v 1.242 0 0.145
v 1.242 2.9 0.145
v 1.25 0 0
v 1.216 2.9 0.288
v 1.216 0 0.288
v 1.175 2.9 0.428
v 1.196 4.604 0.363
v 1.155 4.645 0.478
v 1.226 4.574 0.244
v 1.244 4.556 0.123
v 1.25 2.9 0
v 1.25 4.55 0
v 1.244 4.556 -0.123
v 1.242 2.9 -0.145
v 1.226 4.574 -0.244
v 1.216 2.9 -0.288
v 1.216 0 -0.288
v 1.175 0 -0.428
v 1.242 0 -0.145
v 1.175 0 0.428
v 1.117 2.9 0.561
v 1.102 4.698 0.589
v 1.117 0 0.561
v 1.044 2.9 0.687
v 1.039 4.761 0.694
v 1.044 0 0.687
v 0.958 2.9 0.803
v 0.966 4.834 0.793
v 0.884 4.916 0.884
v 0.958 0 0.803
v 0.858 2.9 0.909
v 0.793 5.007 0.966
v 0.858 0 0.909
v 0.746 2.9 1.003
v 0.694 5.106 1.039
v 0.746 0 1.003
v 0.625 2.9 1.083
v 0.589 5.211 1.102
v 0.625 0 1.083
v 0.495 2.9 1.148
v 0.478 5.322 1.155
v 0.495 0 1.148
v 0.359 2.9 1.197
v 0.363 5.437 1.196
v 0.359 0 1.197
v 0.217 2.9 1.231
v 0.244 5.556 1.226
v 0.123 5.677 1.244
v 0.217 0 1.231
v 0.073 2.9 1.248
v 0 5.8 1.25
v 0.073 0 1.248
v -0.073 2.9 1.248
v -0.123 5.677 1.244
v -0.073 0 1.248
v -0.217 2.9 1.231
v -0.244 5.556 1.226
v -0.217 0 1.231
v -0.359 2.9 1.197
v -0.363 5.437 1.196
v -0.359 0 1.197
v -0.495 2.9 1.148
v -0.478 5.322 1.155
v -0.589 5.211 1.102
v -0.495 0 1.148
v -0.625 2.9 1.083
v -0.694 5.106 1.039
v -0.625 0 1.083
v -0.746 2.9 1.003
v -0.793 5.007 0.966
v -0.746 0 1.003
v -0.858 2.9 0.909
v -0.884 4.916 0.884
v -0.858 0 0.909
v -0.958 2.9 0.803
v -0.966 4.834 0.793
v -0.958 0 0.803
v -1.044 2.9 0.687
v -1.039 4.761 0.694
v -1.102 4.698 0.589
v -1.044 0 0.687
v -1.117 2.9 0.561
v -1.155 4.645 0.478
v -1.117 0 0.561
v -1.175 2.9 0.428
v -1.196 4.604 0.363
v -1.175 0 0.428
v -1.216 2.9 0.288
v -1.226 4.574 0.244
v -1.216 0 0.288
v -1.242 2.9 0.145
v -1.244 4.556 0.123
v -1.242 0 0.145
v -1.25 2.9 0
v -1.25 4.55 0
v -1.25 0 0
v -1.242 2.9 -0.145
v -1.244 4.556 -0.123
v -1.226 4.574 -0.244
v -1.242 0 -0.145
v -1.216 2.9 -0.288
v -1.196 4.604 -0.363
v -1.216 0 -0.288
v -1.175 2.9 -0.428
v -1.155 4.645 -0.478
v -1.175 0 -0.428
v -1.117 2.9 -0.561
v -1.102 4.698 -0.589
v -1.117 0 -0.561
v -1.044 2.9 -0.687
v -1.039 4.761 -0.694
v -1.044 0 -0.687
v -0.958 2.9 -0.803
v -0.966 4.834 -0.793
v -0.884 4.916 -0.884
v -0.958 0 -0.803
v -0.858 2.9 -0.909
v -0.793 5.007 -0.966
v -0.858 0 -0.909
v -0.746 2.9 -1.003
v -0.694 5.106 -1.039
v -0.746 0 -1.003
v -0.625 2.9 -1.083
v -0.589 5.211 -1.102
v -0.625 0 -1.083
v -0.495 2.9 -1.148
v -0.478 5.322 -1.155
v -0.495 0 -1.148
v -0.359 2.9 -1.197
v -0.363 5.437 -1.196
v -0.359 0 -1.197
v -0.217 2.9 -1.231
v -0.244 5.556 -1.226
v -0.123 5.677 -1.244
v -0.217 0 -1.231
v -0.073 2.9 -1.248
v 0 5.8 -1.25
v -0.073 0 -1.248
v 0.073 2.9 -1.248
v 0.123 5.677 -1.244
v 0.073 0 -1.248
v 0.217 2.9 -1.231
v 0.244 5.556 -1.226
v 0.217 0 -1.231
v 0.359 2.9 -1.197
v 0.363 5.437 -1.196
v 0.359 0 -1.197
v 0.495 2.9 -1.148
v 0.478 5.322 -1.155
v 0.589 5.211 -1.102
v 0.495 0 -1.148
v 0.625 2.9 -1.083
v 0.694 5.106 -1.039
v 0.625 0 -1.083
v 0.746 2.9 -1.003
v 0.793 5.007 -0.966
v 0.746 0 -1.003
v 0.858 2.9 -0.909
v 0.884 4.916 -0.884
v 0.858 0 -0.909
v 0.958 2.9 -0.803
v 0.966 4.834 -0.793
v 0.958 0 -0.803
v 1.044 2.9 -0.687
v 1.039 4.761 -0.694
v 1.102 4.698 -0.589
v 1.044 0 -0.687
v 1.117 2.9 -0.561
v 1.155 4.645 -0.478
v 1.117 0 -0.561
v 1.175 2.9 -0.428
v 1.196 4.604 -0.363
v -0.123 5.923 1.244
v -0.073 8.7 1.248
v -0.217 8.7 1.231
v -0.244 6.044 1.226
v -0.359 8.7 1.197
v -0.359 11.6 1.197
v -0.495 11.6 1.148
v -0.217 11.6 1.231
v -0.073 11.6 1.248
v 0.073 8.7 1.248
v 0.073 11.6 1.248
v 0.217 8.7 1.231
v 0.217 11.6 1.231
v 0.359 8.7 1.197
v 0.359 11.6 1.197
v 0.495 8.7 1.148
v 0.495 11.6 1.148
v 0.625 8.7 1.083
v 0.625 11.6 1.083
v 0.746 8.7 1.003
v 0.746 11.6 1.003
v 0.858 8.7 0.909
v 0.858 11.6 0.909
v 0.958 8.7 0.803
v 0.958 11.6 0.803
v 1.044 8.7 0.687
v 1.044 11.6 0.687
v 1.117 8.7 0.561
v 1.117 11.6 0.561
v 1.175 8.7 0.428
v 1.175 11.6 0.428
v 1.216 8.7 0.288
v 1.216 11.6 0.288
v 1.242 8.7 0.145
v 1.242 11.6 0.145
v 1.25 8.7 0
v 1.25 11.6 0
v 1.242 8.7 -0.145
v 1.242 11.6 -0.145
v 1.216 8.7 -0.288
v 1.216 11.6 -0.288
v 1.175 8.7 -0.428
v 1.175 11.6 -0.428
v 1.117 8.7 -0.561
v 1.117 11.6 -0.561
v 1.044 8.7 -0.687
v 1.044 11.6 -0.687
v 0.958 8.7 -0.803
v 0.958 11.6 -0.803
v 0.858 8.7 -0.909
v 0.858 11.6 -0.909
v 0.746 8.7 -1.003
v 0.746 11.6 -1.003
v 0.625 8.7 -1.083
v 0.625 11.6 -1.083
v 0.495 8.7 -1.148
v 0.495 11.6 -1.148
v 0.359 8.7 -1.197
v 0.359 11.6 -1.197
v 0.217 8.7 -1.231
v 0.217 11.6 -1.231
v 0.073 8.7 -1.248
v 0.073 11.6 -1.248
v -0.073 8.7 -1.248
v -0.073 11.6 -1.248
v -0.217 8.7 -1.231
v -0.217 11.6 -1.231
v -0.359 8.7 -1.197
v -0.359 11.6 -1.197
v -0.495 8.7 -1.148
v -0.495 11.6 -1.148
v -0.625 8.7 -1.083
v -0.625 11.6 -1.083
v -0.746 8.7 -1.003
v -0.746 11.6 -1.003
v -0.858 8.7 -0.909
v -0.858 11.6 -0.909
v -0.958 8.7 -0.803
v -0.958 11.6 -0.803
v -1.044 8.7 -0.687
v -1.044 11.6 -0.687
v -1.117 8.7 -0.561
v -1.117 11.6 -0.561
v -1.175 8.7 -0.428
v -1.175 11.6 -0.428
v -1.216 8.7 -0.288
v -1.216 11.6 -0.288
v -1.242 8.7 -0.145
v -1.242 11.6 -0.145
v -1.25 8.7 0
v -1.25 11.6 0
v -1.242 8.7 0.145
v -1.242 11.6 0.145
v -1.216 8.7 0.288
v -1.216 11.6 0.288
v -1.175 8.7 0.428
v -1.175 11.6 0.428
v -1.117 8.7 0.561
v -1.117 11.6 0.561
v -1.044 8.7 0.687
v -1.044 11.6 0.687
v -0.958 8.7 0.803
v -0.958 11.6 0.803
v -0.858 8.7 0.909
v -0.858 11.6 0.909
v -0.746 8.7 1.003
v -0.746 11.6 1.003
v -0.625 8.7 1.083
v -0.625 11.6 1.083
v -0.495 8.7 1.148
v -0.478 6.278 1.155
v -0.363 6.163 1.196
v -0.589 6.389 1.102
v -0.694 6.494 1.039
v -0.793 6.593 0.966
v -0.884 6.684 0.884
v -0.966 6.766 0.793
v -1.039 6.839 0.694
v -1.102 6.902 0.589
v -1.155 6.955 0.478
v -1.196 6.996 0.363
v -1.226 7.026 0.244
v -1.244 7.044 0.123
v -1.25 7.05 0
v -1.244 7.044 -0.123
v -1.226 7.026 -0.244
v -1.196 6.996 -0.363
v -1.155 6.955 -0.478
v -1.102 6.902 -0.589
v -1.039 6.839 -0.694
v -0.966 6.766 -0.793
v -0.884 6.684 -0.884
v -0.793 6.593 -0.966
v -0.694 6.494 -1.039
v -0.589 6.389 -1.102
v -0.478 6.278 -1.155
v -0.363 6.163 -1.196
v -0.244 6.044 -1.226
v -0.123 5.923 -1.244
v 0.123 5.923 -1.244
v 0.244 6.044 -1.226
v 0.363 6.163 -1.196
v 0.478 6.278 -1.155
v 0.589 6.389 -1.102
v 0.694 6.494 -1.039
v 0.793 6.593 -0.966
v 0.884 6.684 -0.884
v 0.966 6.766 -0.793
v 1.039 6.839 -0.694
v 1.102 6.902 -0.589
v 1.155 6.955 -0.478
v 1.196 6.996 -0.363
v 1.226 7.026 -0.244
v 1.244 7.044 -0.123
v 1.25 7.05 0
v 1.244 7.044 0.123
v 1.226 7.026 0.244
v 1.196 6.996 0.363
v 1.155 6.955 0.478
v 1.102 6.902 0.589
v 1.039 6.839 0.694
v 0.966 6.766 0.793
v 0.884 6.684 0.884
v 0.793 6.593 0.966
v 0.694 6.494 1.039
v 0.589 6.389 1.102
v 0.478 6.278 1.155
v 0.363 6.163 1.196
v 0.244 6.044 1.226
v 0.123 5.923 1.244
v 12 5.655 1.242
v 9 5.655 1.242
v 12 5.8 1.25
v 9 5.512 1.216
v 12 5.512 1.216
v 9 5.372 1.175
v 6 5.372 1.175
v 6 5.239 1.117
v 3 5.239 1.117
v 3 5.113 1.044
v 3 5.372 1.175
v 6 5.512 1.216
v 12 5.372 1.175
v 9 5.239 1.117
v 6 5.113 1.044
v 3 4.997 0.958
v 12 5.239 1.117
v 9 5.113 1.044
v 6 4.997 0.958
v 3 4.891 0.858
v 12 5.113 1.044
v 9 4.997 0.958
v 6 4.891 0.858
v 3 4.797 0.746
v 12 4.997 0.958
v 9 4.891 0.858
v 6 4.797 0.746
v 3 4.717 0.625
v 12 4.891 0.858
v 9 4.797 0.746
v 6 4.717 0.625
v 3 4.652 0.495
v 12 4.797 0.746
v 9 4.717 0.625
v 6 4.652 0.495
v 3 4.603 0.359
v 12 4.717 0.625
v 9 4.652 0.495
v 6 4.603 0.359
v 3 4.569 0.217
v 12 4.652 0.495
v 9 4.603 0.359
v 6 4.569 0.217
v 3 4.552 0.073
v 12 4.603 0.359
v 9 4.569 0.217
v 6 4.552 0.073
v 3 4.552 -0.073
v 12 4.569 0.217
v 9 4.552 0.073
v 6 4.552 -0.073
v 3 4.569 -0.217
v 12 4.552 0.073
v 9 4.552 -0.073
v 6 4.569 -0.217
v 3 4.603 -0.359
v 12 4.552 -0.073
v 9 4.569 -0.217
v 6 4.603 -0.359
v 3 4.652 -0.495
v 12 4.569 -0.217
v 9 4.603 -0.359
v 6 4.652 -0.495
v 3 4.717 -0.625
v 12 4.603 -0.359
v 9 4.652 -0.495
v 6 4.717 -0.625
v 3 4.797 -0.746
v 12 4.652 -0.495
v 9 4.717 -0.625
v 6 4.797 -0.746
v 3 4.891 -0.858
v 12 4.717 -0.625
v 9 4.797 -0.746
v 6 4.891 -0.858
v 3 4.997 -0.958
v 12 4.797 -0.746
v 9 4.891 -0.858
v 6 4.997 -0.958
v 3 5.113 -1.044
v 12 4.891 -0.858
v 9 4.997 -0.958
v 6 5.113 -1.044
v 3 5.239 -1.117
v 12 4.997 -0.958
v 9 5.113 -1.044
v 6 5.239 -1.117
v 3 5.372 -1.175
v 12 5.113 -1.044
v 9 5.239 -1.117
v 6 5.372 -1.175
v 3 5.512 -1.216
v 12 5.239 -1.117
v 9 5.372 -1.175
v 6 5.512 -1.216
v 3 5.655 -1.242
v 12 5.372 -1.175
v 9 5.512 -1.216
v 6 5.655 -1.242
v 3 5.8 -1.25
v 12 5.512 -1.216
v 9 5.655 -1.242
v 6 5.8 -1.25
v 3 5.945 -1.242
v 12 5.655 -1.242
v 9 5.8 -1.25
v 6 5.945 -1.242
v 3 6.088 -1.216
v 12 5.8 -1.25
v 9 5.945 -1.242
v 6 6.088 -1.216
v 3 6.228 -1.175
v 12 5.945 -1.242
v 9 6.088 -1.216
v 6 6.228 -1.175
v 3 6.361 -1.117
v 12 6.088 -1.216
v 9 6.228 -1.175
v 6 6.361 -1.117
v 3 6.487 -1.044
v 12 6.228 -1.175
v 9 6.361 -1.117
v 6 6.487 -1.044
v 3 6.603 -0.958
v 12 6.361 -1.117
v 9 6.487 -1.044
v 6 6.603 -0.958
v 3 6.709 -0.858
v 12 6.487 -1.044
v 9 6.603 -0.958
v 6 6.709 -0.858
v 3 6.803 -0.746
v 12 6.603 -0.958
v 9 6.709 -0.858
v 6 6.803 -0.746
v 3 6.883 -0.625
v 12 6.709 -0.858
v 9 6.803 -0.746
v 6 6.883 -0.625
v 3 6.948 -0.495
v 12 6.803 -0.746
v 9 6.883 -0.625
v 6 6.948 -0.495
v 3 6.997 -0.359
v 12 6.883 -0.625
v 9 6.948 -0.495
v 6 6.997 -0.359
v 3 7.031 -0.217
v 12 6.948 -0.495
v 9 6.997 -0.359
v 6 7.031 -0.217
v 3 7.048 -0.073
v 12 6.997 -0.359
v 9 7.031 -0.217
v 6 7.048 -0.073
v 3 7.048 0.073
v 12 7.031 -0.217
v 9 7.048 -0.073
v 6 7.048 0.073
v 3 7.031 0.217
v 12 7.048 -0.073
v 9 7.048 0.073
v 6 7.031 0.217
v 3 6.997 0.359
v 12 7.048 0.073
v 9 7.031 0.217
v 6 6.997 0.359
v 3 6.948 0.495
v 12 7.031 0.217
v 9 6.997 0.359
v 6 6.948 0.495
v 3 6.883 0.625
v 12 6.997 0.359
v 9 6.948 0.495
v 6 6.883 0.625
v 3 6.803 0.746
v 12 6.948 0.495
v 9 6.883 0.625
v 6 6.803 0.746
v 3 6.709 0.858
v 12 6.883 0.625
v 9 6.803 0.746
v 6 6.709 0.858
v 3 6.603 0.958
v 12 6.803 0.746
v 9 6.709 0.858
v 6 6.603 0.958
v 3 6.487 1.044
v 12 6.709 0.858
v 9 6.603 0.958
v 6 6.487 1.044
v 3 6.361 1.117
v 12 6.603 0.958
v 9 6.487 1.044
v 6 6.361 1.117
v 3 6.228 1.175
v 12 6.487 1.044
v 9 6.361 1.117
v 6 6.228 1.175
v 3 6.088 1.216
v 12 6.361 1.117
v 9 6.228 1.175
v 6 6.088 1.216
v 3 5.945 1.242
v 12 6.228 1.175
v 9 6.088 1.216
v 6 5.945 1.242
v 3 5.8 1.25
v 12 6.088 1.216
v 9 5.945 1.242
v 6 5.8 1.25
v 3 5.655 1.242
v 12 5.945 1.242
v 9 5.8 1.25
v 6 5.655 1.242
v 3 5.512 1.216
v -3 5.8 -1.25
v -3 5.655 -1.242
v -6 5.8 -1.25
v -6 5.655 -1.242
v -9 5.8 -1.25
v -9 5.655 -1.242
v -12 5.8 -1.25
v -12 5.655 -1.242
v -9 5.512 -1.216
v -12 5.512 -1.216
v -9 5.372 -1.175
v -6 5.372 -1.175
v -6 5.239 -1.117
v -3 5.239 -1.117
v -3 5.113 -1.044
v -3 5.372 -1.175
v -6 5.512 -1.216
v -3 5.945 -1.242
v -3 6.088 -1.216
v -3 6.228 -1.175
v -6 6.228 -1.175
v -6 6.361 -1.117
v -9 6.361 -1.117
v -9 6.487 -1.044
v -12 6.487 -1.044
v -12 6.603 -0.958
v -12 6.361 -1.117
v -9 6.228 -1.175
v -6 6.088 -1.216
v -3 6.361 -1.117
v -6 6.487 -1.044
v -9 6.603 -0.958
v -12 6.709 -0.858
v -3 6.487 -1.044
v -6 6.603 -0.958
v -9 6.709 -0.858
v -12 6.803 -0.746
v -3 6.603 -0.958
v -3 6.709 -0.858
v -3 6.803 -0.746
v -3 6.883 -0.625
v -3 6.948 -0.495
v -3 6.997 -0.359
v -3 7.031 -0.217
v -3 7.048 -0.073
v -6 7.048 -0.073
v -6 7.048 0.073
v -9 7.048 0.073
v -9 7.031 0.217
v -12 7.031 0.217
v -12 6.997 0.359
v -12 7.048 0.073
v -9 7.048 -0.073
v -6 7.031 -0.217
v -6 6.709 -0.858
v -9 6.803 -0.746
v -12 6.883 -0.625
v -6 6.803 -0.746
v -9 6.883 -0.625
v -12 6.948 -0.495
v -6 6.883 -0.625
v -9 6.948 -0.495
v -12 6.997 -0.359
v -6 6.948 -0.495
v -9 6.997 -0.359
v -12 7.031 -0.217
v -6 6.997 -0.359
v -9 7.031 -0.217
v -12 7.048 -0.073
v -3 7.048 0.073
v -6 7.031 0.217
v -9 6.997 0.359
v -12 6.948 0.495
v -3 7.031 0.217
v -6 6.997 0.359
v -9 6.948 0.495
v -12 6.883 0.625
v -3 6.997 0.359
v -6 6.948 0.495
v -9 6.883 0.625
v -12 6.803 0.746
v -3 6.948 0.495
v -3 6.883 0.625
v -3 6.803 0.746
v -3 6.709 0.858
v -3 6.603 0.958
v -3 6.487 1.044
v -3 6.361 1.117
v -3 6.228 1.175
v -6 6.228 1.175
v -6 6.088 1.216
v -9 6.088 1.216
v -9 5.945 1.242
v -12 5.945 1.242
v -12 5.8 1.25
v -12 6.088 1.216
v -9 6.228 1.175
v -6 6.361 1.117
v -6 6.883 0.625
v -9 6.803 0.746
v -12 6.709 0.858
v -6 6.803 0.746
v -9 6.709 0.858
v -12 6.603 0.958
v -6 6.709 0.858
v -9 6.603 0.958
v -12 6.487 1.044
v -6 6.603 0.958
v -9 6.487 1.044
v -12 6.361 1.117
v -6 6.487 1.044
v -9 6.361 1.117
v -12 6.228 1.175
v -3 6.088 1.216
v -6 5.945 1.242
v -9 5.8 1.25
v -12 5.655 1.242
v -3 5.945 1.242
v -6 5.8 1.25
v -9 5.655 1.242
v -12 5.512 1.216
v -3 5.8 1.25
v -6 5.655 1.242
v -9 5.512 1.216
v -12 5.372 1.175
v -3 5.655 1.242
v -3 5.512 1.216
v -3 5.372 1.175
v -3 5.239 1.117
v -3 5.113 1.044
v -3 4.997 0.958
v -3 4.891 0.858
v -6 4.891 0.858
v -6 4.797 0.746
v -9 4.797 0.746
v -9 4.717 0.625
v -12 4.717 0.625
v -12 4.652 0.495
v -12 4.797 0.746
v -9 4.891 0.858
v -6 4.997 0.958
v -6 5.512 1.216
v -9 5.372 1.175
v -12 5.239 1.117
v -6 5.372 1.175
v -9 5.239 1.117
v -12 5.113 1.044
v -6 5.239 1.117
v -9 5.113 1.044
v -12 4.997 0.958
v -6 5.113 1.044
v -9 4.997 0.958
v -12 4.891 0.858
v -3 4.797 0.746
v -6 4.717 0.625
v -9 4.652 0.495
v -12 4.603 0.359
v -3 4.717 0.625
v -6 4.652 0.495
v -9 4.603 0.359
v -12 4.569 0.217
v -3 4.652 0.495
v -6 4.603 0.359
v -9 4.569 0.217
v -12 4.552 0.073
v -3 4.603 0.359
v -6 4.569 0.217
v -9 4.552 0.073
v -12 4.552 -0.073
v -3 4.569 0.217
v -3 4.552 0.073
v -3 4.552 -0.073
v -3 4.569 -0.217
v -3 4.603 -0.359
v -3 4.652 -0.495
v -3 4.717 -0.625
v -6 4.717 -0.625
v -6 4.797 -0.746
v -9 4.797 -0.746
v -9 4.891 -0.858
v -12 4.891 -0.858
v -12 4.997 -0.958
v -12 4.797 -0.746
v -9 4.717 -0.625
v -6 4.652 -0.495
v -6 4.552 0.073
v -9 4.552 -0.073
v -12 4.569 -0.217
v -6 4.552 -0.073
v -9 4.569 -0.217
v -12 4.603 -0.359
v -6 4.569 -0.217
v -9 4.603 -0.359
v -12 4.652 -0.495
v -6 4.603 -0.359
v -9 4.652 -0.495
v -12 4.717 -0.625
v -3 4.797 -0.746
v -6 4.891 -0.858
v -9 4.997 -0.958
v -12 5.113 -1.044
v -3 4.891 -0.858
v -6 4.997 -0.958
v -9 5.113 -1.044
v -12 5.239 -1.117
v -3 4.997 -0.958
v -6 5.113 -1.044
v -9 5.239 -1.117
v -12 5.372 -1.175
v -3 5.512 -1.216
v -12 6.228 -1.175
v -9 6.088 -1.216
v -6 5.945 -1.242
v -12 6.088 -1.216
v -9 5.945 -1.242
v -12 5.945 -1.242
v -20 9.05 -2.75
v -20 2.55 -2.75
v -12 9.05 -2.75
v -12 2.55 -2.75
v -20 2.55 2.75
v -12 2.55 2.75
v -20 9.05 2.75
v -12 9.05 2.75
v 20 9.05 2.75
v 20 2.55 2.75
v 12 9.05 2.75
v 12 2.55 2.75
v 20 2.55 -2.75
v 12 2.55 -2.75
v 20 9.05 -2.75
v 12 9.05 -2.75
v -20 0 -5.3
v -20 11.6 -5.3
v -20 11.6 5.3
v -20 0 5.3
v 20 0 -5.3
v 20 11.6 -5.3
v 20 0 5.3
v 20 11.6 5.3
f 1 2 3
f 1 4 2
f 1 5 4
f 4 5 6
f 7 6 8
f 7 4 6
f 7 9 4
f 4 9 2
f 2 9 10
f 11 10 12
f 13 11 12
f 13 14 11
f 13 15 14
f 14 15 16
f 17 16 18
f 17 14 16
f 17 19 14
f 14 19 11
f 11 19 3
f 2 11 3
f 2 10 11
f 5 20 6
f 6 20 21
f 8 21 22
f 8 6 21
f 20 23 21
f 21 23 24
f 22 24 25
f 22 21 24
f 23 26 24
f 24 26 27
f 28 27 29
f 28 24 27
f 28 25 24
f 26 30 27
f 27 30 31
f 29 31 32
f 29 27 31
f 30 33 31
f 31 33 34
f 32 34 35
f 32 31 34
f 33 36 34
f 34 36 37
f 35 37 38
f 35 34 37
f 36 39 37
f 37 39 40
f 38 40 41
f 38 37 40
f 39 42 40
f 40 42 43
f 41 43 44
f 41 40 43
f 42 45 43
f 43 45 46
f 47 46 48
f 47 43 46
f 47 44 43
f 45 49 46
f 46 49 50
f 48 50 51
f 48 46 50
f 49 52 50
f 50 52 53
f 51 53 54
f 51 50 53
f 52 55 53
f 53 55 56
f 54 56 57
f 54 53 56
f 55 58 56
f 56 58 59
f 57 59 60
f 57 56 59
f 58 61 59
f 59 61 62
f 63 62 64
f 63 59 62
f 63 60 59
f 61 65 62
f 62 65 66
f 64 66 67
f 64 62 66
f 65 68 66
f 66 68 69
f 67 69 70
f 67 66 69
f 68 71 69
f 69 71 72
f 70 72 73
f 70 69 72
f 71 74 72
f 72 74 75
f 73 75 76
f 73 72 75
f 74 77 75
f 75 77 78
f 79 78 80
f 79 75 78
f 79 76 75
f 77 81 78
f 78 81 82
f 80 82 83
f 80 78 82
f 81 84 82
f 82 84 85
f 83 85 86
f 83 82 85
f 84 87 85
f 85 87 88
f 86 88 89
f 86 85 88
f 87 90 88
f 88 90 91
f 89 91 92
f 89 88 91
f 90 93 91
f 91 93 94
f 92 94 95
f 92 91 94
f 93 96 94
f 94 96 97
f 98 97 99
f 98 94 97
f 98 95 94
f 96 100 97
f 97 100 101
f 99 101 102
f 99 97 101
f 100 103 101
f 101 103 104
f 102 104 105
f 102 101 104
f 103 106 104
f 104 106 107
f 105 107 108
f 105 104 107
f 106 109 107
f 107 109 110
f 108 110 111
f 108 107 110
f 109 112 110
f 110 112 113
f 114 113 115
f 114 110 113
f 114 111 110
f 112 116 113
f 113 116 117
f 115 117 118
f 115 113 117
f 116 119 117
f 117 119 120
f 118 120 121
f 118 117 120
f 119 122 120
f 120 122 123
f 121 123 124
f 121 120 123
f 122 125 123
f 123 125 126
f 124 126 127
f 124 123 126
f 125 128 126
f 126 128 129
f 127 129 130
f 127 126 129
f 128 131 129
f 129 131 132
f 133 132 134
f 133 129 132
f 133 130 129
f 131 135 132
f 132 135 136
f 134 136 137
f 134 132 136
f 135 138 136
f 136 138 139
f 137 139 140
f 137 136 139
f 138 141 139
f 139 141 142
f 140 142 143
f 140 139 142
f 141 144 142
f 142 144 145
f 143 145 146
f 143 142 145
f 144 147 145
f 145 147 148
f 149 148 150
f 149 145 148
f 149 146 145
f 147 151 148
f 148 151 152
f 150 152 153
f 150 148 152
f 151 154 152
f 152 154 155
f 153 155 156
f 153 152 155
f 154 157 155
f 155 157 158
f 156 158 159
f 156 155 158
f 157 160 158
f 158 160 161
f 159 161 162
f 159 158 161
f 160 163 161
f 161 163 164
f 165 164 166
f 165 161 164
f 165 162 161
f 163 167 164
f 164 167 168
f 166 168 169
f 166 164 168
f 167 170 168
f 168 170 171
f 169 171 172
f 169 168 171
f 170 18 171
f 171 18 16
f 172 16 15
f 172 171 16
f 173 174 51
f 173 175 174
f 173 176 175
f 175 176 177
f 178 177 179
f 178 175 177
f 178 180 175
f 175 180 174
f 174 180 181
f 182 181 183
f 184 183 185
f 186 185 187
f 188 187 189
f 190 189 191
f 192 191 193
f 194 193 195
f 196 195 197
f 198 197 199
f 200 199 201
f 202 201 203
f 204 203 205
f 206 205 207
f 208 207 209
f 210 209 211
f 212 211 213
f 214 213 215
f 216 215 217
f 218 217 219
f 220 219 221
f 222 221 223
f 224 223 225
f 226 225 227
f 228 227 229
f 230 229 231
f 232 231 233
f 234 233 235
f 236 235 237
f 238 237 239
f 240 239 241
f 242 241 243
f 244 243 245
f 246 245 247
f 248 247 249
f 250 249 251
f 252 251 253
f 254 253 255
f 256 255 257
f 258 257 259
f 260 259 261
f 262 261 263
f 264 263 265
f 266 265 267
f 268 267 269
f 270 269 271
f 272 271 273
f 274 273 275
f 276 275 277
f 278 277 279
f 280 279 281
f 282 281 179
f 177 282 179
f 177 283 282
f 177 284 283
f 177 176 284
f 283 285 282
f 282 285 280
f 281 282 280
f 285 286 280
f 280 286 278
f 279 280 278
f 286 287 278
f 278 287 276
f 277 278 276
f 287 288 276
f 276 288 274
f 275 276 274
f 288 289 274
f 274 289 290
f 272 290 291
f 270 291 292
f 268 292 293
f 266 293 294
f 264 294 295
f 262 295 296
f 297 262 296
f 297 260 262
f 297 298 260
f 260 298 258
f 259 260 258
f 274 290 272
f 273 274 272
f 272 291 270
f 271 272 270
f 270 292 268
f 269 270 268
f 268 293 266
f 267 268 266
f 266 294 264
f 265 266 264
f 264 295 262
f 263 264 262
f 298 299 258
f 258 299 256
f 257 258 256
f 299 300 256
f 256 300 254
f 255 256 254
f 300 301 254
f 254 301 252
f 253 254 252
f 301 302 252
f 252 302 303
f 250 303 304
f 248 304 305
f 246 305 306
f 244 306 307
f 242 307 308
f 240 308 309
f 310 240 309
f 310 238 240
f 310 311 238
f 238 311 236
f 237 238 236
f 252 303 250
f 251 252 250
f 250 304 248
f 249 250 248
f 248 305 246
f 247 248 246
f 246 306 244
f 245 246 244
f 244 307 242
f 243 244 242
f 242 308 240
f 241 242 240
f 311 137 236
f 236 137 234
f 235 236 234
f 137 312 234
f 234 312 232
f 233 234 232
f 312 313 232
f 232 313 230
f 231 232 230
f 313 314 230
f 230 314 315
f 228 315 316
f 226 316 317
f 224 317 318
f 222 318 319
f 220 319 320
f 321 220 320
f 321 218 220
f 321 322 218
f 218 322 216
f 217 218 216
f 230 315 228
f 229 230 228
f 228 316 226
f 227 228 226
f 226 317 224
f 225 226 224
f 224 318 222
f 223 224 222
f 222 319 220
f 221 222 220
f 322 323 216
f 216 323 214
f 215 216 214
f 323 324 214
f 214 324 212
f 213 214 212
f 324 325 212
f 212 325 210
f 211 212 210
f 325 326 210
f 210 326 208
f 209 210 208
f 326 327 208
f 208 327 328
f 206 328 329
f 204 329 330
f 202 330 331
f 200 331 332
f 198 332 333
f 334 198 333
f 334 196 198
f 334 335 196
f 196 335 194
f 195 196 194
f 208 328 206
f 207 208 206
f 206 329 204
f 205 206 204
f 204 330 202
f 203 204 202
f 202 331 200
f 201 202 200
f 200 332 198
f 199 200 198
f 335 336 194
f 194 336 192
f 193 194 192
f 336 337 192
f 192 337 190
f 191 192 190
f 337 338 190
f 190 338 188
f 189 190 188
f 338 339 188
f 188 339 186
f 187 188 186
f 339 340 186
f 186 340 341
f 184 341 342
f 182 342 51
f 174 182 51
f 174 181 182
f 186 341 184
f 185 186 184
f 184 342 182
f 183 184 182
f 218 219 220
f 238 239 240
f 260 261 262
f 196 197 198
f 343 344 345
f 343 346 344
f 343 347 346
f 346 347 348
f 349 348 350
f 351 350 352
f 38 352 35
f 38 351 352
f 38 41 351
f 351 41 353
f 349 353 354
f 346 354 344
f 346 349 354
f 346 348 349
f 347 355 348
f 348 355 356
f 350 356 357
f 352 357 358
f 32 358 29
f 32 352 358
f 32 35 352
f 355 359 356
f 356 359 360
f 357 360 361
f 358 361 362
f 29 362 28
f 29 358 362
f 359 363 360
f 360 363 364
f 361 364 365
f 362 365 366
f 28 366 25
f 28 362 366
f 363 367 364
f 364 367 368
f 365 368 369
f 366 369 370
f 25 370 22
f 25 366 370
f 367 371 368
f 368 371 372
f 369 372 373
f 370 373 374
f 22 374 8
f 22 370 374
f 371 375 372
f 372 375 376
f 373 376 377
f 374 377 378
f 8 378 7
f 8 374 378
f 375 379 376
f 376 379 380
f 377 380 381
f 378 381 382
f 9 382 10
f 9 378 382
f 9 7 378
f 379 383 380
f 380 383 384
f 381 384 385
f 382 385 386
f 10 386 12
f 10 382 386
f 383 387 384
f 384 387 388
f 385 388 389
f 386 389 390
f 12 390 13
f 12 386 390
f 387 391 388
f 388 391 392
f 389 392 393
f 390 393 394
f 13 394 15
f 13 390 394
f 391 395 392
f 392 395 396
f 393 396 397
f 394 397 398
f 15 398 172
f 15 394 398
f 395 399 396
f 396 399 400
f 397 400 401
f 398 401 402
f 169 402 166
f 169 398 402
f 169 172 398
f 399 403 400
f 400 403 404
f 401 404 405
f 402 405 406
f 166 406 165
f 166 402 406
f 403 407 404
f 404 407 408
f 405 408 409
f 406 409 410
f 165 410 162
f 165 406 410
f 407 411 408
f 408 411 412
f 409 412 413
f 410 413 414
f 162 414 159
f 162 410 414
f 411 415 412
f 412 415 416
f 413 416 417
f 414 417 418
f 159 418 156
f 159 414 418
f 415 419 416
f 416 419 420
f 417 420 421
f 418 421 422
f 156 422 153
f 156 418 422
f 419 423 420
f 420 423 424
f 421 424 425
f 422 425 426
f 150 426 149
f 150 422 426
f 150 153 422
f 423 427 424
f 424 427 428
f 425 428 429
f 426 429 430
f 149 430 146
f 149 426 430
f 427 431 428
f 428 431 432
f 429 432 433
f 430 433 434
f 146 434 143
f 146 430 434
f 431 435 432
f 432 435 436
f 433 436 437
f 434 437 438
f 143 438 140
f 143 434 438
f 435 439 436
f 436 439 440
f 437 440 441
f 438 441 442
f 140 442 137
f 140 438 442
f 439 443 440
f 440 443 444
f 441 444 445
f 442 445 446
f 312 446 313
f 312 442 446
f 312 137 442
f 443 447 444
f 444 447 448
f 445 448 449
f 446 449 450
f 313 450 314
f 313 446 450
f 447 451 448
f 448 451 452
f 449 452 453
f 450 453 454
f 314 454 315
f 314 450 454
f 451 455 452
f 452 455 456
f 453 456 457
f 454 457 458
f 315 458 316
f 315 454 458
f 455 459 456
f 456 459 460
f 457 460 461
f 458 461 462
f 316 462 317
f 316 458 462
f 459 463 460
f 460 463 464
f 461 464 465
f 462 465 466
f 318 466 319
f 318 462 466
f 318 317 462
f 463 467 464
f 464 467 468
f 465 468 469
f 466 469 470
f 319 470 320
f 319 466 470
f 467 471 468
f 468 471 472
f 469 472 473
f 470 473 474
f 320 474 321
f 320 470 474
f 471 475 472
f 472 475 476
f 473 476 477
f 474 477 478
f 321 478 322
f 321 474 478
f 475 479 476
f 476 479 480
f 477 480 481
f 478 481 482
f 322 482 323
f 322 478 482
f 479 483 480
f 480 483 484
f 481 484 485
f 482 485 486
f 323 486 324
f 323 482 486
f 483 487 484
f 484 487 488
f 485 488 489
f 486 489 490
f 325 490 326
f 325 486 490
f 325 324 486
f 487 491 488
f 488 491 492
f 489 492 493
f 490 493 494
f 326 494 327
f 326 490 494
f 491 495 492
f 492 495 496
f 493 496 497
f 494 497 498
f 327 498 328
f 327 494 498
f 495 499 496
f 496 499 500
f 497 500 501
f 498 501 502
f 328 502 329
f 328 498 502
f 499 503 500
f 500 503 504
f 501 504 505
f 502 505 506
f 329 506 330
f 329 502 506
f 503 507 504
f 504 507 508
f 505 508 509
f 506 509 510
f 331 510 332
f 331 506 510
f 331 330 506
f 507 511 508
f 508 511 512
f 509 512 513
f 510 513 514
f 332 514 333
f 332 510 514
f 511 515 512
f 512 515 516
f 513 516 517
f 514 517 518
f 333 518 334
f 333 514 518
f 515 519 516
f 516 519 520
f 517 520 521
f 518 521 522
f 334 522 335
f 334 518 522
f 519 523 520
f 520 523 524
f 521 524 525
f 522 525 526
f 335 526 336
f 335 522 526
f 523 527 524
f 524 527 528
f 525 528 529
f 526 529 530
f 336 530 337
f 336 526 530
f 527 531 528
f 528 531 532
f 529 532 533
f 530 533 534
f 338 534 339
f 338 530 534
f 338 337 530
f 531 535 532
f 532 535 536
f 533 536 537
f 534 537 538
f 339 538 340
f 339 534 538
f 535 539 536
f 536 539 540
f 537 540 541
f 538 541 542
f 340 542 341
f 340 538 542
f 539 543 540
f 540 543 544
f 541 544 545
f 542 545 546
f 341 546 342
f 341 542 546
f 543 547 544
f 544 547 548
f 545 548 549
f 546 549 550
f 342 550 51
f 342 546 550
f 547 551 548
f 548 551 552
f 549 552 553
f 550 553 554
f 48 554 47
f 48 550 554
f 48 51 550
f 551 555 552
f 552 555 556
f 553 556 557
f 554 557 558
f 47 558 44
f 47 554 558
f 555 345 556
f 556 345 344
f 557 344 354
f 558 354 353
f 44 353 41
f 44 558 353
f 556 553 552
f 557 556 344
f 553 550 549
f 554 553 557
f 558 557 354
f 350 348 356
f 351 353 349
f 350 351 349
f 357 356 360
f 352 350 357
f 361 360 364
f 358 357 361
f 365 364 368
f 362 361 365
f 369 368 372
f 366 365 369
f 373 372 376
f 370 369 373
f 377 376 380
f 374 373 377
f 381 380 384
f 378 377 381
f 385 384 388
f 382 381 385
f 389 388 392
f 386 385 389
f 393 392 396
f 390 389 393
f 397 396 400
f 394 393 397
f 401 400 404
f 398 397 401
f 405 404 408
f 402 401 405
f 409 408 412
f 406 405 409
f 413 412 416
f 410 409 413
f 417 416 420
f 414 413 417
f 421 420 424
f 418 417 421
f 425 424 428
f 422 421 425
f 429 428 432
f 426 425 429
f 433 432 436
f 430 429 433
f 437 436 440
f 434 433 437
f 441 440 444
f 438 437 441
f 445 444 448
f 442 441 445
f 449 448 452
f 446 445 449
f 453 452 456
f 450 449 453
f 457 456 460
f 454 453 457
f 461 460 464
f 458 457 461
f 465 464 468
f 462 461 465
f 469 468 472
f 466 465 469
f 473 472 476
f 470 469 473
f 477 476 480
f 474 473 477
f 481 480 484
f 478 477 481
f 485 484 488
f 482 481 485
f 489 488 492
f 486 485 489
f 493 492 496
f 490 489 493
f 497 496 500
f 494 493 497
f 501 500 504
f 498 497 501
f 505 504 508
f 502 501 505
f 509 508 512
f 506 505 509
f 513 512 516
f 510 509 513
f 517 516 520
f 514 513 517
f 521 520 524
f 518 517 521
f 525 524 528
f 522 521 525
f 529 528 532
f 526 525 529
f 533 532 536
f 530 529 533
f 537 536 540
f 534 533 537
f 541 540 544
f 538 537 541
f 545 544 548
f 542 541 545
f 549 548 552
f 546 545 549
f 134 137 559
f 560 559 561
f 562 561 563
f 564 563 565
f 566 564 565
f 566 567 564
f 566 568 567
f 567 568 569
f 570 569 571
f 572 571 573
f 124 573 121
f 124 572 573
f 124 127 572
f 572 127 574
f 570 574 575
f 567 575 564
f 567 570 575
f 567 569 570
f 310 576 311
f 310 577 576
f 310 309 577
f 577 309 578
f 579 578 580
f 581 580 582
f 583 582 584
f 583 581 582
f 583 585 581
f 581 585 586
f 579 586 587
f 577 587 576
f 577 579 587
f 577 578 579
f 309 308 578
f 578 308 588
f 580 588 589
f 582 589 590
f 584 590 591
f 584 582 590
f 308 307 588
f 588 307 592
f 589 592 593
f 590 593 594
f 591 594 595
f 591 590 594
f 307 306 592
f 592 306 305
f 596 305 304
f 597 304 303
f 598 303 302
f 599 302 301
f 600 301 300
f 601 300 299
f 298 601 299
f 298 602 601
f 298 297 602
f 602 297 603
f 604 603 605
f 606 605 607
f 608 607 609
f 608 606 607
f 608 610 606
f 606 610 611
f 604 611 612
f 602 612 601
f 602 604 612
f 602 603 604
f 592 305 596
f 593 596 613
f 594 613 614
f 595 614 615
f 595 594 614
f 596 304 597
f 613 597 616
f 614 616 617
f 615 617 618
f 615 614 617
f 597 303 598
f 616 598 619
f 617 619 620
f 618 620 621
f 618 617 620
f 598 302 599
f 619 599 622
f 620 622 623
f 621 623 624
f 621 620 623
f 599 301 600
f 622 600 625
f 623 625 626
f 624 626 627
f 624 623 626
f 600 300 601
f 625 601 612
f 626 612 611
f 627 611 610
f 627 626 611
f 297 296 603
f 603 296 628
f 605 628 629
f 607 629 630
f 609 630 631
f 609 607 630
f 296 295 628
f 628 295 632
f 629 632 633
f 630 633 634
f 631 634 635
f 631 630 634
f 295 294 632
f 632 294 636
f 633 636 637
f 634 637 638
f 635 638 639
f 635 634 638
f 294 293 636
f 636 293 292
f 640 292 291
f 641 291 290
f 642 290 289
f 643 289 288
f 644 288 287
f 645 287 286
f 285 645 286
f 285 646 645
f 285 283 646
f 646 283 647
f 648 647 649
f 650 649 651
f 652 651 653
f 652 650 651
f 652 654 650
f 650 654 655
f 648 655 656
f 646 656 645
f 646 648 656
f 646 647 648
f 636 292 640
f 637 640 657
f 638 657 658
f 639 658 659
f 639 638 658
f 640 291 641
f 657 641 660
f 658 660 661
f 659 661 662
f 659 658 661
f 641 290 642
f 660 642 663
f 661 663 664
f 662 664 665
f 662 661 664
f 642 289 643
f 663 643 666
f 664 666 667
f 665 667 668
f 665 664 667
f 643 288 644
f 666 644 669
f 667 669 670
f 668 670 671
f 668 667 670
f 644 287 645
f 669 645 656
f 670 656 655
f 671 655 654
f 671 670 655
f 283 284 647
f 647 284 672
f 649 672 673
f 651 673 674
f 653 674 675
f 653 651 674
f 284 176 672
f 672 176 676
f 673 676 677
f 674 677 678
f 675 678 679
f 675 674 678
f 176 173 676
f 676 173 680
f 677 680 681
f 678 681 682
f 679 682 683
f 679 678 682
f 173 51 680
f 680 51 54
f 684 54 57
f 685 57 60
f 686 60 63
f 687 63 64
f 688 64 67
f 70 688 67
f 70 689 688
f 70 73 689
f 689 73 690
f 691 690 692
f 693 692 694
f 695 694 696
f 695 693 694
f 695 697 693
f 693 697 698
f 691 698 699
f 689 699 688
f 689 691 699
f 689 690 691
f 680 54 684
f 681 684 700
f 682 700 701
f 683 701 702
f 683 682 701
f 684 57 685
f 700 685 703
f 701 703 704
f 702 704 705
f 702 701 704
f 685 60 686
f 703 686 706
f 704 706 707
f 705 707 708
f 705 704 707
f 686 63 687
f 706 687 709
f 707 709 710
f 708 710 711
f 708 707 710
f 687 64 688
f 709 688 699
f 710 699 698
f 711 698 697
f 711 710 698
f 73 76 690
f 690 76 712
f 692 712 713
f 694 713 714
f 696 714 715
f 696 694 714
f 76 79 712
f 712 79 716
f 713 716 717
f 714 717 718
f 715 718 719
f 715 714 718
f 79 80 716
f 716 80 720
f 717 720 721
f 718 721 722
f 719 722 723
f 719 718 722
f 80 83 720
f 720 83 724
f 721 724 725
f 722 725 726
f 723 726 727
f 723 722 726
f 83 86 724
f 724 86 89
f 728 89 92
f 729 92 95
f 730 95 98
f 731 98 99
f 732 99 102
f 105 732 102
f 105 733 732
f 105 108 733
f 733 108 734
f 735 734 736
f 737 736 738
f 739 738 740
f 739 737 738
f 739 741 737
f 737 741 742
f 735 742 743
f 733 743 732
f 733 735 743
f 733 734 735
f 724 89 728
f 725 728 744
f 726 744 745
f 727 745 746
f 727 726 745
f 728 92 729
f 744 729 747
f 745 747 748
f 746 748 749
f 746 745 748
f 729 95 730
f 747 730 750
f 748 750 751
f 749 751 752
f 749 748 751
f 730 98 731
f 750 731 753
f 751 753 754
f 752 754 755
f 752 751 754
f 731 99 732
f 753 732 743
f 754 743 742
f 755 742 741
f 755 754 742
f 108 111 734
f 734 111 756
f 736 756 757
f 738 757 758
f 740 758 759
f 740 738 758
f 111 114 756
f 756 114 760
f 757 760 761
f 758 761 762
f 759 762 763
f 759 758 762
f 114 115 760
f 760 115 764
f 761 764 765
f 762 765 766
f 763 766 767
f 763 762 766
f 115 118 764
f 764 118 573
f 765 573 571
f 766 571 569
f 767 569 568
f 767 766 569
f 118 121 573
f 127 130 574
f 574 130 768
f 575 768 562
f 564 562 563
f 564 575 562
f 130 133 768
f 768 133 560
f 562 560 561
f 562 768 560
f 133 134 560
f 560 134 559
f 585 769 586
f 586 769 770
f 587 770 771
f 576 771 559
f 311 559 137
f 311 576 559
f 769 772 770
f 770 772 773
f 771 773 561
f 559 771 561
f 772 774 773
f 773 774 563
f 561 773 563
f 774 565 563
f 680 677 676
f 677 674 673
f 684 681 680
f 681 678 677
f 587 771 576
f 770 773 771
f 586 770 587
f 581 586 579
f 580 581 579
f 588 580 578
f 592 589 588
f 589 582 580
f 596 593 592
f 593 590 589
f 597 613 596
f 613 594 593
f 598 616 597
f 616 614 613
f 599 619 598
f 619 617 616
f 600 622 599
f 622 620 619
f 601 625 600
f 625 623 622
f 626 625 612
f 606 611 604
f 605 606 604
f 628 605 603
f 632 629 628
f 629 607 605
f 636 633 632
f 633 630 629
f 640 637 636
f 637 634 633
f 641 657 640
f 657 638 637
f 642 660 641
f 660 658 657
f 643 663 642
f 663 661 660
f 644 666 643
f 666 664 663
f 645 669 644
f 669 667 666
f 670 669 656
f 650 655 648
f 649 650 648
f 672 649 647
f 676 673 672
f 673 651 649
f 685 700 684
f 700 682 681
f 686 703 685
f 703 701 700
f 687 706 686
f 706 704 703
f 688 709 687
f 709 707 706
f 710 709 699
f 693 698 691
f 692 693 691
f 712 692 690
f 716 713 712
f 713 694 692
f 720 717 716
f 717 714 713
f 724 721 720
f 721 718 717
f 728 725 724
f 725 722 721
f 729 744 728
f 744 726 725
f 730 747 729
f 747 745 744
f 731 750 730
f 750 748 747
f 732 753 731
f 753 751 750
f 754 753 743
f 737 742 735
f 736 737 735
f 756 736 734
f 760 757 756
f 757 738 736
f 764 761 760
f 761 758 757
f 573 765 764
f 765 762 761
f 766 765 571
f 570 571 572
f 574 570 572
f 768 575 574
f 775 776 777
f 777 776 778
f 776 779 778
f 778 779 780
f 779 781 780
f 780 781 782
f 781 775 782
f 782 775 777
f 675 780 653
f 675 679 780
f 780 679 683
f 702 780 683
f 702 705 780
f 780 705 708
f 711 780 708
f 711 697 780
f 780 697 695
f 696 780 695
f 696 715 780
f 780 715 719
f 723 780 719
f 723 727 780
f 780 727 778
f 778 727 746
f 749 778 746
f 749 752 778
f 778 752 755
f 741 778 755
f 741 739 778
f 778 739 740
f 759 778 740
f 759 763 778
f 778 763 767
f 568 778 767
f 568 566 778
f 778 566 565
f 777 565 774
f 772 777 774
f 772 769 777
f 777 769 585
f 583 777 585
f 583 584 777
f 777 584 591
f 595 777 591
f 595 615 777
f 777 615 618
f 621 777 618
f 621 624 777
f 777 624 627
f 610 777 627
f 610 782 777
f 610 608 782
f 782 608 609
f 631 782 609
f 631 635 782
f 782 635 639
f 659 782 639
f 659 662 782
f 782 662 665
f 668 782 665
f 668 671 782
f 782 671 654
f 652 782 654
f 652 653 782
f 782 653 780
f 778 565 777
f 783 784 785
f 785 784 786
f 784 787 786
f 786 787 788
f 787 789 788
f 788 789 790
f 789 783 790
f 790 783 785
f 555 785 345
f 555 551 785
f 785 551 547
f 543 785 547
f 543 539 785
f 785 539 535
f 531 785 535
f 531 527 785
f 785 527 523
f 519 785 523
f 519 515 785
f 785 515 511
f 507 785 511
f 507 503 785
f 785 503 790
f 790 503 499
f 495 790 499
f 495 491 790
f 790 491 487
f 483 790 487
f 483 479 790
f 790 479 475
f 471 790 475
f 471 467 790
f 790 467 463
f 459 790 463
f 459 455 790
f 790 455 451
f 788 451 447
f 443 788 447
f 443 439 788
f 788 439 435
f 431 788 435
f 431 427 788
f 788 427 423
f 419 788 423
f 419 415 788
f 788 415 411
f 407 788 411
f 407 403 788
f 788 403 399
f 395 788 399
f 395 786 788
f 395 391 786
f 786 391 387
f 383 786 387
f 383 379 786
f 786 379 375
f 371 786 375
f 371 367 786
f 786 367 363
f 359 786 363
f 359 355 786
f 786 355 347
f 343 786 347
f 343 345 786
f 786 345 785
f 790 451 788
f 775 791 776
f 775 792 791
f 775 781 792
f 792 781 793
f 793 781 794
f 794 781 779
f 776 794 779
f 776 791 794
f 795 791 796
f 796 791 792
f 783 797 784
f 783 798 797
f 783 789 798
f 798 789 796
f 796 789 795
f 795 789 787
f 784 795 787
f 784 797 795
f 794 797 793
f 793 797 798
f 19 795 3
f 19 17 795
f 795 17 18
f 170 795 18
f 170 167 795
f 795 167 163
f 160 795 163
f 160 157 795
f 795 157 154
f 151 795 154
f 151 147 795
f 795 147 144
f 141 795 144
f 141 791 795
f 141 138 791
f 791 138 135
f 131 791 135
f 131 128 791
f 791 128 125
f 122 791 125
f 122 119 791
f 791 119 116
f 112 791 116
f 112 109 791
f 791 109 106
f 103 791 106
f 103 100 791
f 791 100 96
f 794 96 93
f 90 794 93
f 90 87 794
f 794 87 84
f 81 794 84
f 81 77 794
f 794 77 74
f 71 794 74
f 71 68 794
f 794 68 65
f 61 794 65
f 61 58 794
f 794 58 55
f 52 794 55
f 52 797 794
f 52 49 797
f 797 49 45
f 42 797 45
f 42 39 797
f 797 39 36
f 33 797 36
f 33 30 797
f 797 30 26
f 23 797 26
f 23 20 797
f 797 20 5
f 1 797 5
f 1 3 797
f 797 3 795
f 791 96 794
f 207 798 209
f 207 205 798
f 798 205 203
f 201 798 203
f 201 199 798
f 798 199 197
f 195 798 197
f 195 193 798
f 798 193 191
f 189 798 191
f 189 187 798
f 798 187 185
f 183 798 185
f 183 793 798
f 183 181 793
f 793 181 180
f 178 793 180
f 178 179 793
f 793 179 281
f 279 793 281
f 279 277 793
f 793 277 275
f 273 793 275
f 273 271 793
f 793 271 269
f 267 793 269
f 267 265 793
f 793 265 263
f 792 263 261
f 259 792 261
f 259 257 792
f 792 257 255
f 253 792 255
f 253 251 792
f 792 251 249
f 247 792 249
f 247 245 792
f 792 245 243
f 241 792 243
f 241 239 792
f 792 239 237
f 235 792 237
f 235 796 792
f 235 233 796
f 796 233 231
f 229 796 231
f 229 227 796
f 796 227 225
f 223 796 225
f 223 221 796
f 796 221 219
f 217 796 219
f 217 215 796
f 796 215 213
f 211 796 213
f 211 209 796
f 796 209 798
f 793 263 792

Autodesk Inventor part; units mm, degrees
ref_plane "YZ Plane" through (0, 0, 0) normal (1, 0, 0) x (0, 1, 0)
ref_plane "XZ Plane" through (0, 0, 0) normal (0, 1, 0) x (-1, 0, 0)
ref_plane "XY Plane" through (0, 0, 0) normal (0, 0, 1) x (1, 0, 0)
sketch "Esquisse1" plane through (0, 0, 0) normal (0, 1, 0) x (-1, 0, 0)
  line L0 (-20, 5.3) -> (20, 5.3)
  line L1 (20, 5.3) -> (20, -5.3)
  line L2 (20, -5.3) -> (-20, -5.3)
  line L3 (-20, -5.3) -> (-20, 5.3)
  point P0 (0, 0)
  dimension "d0" = 40
  dimension "d1" = 10.6
  dimension "d2" = 20
  dimension "d3" = 5.3
extrude "Extrusion1" add sketch "Esquisse1" along normal blind 11.6
sketch "Esquisse2" plane through (20, 0, 5.3) normal (1, 0, 0) x (0, 0, -1)
  line L0 (2.55, 9.05) -> (8.05, 9.05)
  line L1 (8.05, 9.05) -> (8.05, 2.55)
  line L2 (8.05, 2.55) -> (2.55, 2.55)
  line L3 (2.55, 2.55) -> (2.55, 9.05)
  point P0 (0, 11.6)
  point P1 (5.3, 0)
  dimension "d6" = 5.5
  dimension "d8" = 2.75
  dimension "d9" = 6.5
  dimension "d10" = 2.55
extrude "Extrusion2" cut sketch "Esquisse2" against normal blind 8
sketch "Esquisse3" plane through (-20, 0, -5.3) normal (-1, 0, 0) x (0, 0, 1)
  line L0 (2.55, 9.05) -> (8.05, 9.05)
  line L1 (8.05, 9.05) -> (8.05, 2.55)
  line L2 (8.05, 2.55) -> (2.55, 2.55)
  line L3 (2.55, 2.55) -> (2.55, 9.05)
  point P0 (0, 11.6)
  point P1 (5.3, 0)
  dimension "d13" = 5.5
  dimension "d14" = 6.5
  dimension "d15" = 2.75
  dimension "d16" = 2.55
extrude "Extrusion3" cut sketch "Esquisse3" against normal blind 8
sketch "Esquisse4" plane through (-12, 0, -5.3) normal (-1, 0, 0) x (0, 0, 1)
  line L0 (2.55, 9.05) -> (8.05, 9.05) projected
  line L1 (2.55, 2.55) -> (2.55, 9.05) projected
  circle A0 centre (5.3, 5.8) radius 1.25
  point P0 (5.3, 0)
  dimension "d19" = 2.5
  dimension "d20" = 3.25
  dimension "d21" = 2.75
extrude "Extrusion4" cut sketch "Esquisse4" against normal through all
sketch "Esquisse5" plane through (0, 11.6, 0) normal (0, 1, 0) x (1, 0, 0)
  circle A0 centre (0, 0) radius 1.25
  dimension "d24" = 2.5
extrude "Extrusion5" cut sketch "Esquisse5" against normal through all
equation "\"d2\" = 0.5 * d0"
equation "\"d3\" = 0.5 * d1"
equation "\"d8\" = 0.5 * d6"
equation "\"d10\" = -0.5 * d9 + 0.5 * d4"
equation "\"d15\" = 0.5 * d13"
equation "\"d16\" = -0.5 * d9 + 0.5 * d4"
equation "\"d20\" = 0.5 * d14"
equation "\"d4\" = 11.6"
properties part number "Truc Lumiere"
